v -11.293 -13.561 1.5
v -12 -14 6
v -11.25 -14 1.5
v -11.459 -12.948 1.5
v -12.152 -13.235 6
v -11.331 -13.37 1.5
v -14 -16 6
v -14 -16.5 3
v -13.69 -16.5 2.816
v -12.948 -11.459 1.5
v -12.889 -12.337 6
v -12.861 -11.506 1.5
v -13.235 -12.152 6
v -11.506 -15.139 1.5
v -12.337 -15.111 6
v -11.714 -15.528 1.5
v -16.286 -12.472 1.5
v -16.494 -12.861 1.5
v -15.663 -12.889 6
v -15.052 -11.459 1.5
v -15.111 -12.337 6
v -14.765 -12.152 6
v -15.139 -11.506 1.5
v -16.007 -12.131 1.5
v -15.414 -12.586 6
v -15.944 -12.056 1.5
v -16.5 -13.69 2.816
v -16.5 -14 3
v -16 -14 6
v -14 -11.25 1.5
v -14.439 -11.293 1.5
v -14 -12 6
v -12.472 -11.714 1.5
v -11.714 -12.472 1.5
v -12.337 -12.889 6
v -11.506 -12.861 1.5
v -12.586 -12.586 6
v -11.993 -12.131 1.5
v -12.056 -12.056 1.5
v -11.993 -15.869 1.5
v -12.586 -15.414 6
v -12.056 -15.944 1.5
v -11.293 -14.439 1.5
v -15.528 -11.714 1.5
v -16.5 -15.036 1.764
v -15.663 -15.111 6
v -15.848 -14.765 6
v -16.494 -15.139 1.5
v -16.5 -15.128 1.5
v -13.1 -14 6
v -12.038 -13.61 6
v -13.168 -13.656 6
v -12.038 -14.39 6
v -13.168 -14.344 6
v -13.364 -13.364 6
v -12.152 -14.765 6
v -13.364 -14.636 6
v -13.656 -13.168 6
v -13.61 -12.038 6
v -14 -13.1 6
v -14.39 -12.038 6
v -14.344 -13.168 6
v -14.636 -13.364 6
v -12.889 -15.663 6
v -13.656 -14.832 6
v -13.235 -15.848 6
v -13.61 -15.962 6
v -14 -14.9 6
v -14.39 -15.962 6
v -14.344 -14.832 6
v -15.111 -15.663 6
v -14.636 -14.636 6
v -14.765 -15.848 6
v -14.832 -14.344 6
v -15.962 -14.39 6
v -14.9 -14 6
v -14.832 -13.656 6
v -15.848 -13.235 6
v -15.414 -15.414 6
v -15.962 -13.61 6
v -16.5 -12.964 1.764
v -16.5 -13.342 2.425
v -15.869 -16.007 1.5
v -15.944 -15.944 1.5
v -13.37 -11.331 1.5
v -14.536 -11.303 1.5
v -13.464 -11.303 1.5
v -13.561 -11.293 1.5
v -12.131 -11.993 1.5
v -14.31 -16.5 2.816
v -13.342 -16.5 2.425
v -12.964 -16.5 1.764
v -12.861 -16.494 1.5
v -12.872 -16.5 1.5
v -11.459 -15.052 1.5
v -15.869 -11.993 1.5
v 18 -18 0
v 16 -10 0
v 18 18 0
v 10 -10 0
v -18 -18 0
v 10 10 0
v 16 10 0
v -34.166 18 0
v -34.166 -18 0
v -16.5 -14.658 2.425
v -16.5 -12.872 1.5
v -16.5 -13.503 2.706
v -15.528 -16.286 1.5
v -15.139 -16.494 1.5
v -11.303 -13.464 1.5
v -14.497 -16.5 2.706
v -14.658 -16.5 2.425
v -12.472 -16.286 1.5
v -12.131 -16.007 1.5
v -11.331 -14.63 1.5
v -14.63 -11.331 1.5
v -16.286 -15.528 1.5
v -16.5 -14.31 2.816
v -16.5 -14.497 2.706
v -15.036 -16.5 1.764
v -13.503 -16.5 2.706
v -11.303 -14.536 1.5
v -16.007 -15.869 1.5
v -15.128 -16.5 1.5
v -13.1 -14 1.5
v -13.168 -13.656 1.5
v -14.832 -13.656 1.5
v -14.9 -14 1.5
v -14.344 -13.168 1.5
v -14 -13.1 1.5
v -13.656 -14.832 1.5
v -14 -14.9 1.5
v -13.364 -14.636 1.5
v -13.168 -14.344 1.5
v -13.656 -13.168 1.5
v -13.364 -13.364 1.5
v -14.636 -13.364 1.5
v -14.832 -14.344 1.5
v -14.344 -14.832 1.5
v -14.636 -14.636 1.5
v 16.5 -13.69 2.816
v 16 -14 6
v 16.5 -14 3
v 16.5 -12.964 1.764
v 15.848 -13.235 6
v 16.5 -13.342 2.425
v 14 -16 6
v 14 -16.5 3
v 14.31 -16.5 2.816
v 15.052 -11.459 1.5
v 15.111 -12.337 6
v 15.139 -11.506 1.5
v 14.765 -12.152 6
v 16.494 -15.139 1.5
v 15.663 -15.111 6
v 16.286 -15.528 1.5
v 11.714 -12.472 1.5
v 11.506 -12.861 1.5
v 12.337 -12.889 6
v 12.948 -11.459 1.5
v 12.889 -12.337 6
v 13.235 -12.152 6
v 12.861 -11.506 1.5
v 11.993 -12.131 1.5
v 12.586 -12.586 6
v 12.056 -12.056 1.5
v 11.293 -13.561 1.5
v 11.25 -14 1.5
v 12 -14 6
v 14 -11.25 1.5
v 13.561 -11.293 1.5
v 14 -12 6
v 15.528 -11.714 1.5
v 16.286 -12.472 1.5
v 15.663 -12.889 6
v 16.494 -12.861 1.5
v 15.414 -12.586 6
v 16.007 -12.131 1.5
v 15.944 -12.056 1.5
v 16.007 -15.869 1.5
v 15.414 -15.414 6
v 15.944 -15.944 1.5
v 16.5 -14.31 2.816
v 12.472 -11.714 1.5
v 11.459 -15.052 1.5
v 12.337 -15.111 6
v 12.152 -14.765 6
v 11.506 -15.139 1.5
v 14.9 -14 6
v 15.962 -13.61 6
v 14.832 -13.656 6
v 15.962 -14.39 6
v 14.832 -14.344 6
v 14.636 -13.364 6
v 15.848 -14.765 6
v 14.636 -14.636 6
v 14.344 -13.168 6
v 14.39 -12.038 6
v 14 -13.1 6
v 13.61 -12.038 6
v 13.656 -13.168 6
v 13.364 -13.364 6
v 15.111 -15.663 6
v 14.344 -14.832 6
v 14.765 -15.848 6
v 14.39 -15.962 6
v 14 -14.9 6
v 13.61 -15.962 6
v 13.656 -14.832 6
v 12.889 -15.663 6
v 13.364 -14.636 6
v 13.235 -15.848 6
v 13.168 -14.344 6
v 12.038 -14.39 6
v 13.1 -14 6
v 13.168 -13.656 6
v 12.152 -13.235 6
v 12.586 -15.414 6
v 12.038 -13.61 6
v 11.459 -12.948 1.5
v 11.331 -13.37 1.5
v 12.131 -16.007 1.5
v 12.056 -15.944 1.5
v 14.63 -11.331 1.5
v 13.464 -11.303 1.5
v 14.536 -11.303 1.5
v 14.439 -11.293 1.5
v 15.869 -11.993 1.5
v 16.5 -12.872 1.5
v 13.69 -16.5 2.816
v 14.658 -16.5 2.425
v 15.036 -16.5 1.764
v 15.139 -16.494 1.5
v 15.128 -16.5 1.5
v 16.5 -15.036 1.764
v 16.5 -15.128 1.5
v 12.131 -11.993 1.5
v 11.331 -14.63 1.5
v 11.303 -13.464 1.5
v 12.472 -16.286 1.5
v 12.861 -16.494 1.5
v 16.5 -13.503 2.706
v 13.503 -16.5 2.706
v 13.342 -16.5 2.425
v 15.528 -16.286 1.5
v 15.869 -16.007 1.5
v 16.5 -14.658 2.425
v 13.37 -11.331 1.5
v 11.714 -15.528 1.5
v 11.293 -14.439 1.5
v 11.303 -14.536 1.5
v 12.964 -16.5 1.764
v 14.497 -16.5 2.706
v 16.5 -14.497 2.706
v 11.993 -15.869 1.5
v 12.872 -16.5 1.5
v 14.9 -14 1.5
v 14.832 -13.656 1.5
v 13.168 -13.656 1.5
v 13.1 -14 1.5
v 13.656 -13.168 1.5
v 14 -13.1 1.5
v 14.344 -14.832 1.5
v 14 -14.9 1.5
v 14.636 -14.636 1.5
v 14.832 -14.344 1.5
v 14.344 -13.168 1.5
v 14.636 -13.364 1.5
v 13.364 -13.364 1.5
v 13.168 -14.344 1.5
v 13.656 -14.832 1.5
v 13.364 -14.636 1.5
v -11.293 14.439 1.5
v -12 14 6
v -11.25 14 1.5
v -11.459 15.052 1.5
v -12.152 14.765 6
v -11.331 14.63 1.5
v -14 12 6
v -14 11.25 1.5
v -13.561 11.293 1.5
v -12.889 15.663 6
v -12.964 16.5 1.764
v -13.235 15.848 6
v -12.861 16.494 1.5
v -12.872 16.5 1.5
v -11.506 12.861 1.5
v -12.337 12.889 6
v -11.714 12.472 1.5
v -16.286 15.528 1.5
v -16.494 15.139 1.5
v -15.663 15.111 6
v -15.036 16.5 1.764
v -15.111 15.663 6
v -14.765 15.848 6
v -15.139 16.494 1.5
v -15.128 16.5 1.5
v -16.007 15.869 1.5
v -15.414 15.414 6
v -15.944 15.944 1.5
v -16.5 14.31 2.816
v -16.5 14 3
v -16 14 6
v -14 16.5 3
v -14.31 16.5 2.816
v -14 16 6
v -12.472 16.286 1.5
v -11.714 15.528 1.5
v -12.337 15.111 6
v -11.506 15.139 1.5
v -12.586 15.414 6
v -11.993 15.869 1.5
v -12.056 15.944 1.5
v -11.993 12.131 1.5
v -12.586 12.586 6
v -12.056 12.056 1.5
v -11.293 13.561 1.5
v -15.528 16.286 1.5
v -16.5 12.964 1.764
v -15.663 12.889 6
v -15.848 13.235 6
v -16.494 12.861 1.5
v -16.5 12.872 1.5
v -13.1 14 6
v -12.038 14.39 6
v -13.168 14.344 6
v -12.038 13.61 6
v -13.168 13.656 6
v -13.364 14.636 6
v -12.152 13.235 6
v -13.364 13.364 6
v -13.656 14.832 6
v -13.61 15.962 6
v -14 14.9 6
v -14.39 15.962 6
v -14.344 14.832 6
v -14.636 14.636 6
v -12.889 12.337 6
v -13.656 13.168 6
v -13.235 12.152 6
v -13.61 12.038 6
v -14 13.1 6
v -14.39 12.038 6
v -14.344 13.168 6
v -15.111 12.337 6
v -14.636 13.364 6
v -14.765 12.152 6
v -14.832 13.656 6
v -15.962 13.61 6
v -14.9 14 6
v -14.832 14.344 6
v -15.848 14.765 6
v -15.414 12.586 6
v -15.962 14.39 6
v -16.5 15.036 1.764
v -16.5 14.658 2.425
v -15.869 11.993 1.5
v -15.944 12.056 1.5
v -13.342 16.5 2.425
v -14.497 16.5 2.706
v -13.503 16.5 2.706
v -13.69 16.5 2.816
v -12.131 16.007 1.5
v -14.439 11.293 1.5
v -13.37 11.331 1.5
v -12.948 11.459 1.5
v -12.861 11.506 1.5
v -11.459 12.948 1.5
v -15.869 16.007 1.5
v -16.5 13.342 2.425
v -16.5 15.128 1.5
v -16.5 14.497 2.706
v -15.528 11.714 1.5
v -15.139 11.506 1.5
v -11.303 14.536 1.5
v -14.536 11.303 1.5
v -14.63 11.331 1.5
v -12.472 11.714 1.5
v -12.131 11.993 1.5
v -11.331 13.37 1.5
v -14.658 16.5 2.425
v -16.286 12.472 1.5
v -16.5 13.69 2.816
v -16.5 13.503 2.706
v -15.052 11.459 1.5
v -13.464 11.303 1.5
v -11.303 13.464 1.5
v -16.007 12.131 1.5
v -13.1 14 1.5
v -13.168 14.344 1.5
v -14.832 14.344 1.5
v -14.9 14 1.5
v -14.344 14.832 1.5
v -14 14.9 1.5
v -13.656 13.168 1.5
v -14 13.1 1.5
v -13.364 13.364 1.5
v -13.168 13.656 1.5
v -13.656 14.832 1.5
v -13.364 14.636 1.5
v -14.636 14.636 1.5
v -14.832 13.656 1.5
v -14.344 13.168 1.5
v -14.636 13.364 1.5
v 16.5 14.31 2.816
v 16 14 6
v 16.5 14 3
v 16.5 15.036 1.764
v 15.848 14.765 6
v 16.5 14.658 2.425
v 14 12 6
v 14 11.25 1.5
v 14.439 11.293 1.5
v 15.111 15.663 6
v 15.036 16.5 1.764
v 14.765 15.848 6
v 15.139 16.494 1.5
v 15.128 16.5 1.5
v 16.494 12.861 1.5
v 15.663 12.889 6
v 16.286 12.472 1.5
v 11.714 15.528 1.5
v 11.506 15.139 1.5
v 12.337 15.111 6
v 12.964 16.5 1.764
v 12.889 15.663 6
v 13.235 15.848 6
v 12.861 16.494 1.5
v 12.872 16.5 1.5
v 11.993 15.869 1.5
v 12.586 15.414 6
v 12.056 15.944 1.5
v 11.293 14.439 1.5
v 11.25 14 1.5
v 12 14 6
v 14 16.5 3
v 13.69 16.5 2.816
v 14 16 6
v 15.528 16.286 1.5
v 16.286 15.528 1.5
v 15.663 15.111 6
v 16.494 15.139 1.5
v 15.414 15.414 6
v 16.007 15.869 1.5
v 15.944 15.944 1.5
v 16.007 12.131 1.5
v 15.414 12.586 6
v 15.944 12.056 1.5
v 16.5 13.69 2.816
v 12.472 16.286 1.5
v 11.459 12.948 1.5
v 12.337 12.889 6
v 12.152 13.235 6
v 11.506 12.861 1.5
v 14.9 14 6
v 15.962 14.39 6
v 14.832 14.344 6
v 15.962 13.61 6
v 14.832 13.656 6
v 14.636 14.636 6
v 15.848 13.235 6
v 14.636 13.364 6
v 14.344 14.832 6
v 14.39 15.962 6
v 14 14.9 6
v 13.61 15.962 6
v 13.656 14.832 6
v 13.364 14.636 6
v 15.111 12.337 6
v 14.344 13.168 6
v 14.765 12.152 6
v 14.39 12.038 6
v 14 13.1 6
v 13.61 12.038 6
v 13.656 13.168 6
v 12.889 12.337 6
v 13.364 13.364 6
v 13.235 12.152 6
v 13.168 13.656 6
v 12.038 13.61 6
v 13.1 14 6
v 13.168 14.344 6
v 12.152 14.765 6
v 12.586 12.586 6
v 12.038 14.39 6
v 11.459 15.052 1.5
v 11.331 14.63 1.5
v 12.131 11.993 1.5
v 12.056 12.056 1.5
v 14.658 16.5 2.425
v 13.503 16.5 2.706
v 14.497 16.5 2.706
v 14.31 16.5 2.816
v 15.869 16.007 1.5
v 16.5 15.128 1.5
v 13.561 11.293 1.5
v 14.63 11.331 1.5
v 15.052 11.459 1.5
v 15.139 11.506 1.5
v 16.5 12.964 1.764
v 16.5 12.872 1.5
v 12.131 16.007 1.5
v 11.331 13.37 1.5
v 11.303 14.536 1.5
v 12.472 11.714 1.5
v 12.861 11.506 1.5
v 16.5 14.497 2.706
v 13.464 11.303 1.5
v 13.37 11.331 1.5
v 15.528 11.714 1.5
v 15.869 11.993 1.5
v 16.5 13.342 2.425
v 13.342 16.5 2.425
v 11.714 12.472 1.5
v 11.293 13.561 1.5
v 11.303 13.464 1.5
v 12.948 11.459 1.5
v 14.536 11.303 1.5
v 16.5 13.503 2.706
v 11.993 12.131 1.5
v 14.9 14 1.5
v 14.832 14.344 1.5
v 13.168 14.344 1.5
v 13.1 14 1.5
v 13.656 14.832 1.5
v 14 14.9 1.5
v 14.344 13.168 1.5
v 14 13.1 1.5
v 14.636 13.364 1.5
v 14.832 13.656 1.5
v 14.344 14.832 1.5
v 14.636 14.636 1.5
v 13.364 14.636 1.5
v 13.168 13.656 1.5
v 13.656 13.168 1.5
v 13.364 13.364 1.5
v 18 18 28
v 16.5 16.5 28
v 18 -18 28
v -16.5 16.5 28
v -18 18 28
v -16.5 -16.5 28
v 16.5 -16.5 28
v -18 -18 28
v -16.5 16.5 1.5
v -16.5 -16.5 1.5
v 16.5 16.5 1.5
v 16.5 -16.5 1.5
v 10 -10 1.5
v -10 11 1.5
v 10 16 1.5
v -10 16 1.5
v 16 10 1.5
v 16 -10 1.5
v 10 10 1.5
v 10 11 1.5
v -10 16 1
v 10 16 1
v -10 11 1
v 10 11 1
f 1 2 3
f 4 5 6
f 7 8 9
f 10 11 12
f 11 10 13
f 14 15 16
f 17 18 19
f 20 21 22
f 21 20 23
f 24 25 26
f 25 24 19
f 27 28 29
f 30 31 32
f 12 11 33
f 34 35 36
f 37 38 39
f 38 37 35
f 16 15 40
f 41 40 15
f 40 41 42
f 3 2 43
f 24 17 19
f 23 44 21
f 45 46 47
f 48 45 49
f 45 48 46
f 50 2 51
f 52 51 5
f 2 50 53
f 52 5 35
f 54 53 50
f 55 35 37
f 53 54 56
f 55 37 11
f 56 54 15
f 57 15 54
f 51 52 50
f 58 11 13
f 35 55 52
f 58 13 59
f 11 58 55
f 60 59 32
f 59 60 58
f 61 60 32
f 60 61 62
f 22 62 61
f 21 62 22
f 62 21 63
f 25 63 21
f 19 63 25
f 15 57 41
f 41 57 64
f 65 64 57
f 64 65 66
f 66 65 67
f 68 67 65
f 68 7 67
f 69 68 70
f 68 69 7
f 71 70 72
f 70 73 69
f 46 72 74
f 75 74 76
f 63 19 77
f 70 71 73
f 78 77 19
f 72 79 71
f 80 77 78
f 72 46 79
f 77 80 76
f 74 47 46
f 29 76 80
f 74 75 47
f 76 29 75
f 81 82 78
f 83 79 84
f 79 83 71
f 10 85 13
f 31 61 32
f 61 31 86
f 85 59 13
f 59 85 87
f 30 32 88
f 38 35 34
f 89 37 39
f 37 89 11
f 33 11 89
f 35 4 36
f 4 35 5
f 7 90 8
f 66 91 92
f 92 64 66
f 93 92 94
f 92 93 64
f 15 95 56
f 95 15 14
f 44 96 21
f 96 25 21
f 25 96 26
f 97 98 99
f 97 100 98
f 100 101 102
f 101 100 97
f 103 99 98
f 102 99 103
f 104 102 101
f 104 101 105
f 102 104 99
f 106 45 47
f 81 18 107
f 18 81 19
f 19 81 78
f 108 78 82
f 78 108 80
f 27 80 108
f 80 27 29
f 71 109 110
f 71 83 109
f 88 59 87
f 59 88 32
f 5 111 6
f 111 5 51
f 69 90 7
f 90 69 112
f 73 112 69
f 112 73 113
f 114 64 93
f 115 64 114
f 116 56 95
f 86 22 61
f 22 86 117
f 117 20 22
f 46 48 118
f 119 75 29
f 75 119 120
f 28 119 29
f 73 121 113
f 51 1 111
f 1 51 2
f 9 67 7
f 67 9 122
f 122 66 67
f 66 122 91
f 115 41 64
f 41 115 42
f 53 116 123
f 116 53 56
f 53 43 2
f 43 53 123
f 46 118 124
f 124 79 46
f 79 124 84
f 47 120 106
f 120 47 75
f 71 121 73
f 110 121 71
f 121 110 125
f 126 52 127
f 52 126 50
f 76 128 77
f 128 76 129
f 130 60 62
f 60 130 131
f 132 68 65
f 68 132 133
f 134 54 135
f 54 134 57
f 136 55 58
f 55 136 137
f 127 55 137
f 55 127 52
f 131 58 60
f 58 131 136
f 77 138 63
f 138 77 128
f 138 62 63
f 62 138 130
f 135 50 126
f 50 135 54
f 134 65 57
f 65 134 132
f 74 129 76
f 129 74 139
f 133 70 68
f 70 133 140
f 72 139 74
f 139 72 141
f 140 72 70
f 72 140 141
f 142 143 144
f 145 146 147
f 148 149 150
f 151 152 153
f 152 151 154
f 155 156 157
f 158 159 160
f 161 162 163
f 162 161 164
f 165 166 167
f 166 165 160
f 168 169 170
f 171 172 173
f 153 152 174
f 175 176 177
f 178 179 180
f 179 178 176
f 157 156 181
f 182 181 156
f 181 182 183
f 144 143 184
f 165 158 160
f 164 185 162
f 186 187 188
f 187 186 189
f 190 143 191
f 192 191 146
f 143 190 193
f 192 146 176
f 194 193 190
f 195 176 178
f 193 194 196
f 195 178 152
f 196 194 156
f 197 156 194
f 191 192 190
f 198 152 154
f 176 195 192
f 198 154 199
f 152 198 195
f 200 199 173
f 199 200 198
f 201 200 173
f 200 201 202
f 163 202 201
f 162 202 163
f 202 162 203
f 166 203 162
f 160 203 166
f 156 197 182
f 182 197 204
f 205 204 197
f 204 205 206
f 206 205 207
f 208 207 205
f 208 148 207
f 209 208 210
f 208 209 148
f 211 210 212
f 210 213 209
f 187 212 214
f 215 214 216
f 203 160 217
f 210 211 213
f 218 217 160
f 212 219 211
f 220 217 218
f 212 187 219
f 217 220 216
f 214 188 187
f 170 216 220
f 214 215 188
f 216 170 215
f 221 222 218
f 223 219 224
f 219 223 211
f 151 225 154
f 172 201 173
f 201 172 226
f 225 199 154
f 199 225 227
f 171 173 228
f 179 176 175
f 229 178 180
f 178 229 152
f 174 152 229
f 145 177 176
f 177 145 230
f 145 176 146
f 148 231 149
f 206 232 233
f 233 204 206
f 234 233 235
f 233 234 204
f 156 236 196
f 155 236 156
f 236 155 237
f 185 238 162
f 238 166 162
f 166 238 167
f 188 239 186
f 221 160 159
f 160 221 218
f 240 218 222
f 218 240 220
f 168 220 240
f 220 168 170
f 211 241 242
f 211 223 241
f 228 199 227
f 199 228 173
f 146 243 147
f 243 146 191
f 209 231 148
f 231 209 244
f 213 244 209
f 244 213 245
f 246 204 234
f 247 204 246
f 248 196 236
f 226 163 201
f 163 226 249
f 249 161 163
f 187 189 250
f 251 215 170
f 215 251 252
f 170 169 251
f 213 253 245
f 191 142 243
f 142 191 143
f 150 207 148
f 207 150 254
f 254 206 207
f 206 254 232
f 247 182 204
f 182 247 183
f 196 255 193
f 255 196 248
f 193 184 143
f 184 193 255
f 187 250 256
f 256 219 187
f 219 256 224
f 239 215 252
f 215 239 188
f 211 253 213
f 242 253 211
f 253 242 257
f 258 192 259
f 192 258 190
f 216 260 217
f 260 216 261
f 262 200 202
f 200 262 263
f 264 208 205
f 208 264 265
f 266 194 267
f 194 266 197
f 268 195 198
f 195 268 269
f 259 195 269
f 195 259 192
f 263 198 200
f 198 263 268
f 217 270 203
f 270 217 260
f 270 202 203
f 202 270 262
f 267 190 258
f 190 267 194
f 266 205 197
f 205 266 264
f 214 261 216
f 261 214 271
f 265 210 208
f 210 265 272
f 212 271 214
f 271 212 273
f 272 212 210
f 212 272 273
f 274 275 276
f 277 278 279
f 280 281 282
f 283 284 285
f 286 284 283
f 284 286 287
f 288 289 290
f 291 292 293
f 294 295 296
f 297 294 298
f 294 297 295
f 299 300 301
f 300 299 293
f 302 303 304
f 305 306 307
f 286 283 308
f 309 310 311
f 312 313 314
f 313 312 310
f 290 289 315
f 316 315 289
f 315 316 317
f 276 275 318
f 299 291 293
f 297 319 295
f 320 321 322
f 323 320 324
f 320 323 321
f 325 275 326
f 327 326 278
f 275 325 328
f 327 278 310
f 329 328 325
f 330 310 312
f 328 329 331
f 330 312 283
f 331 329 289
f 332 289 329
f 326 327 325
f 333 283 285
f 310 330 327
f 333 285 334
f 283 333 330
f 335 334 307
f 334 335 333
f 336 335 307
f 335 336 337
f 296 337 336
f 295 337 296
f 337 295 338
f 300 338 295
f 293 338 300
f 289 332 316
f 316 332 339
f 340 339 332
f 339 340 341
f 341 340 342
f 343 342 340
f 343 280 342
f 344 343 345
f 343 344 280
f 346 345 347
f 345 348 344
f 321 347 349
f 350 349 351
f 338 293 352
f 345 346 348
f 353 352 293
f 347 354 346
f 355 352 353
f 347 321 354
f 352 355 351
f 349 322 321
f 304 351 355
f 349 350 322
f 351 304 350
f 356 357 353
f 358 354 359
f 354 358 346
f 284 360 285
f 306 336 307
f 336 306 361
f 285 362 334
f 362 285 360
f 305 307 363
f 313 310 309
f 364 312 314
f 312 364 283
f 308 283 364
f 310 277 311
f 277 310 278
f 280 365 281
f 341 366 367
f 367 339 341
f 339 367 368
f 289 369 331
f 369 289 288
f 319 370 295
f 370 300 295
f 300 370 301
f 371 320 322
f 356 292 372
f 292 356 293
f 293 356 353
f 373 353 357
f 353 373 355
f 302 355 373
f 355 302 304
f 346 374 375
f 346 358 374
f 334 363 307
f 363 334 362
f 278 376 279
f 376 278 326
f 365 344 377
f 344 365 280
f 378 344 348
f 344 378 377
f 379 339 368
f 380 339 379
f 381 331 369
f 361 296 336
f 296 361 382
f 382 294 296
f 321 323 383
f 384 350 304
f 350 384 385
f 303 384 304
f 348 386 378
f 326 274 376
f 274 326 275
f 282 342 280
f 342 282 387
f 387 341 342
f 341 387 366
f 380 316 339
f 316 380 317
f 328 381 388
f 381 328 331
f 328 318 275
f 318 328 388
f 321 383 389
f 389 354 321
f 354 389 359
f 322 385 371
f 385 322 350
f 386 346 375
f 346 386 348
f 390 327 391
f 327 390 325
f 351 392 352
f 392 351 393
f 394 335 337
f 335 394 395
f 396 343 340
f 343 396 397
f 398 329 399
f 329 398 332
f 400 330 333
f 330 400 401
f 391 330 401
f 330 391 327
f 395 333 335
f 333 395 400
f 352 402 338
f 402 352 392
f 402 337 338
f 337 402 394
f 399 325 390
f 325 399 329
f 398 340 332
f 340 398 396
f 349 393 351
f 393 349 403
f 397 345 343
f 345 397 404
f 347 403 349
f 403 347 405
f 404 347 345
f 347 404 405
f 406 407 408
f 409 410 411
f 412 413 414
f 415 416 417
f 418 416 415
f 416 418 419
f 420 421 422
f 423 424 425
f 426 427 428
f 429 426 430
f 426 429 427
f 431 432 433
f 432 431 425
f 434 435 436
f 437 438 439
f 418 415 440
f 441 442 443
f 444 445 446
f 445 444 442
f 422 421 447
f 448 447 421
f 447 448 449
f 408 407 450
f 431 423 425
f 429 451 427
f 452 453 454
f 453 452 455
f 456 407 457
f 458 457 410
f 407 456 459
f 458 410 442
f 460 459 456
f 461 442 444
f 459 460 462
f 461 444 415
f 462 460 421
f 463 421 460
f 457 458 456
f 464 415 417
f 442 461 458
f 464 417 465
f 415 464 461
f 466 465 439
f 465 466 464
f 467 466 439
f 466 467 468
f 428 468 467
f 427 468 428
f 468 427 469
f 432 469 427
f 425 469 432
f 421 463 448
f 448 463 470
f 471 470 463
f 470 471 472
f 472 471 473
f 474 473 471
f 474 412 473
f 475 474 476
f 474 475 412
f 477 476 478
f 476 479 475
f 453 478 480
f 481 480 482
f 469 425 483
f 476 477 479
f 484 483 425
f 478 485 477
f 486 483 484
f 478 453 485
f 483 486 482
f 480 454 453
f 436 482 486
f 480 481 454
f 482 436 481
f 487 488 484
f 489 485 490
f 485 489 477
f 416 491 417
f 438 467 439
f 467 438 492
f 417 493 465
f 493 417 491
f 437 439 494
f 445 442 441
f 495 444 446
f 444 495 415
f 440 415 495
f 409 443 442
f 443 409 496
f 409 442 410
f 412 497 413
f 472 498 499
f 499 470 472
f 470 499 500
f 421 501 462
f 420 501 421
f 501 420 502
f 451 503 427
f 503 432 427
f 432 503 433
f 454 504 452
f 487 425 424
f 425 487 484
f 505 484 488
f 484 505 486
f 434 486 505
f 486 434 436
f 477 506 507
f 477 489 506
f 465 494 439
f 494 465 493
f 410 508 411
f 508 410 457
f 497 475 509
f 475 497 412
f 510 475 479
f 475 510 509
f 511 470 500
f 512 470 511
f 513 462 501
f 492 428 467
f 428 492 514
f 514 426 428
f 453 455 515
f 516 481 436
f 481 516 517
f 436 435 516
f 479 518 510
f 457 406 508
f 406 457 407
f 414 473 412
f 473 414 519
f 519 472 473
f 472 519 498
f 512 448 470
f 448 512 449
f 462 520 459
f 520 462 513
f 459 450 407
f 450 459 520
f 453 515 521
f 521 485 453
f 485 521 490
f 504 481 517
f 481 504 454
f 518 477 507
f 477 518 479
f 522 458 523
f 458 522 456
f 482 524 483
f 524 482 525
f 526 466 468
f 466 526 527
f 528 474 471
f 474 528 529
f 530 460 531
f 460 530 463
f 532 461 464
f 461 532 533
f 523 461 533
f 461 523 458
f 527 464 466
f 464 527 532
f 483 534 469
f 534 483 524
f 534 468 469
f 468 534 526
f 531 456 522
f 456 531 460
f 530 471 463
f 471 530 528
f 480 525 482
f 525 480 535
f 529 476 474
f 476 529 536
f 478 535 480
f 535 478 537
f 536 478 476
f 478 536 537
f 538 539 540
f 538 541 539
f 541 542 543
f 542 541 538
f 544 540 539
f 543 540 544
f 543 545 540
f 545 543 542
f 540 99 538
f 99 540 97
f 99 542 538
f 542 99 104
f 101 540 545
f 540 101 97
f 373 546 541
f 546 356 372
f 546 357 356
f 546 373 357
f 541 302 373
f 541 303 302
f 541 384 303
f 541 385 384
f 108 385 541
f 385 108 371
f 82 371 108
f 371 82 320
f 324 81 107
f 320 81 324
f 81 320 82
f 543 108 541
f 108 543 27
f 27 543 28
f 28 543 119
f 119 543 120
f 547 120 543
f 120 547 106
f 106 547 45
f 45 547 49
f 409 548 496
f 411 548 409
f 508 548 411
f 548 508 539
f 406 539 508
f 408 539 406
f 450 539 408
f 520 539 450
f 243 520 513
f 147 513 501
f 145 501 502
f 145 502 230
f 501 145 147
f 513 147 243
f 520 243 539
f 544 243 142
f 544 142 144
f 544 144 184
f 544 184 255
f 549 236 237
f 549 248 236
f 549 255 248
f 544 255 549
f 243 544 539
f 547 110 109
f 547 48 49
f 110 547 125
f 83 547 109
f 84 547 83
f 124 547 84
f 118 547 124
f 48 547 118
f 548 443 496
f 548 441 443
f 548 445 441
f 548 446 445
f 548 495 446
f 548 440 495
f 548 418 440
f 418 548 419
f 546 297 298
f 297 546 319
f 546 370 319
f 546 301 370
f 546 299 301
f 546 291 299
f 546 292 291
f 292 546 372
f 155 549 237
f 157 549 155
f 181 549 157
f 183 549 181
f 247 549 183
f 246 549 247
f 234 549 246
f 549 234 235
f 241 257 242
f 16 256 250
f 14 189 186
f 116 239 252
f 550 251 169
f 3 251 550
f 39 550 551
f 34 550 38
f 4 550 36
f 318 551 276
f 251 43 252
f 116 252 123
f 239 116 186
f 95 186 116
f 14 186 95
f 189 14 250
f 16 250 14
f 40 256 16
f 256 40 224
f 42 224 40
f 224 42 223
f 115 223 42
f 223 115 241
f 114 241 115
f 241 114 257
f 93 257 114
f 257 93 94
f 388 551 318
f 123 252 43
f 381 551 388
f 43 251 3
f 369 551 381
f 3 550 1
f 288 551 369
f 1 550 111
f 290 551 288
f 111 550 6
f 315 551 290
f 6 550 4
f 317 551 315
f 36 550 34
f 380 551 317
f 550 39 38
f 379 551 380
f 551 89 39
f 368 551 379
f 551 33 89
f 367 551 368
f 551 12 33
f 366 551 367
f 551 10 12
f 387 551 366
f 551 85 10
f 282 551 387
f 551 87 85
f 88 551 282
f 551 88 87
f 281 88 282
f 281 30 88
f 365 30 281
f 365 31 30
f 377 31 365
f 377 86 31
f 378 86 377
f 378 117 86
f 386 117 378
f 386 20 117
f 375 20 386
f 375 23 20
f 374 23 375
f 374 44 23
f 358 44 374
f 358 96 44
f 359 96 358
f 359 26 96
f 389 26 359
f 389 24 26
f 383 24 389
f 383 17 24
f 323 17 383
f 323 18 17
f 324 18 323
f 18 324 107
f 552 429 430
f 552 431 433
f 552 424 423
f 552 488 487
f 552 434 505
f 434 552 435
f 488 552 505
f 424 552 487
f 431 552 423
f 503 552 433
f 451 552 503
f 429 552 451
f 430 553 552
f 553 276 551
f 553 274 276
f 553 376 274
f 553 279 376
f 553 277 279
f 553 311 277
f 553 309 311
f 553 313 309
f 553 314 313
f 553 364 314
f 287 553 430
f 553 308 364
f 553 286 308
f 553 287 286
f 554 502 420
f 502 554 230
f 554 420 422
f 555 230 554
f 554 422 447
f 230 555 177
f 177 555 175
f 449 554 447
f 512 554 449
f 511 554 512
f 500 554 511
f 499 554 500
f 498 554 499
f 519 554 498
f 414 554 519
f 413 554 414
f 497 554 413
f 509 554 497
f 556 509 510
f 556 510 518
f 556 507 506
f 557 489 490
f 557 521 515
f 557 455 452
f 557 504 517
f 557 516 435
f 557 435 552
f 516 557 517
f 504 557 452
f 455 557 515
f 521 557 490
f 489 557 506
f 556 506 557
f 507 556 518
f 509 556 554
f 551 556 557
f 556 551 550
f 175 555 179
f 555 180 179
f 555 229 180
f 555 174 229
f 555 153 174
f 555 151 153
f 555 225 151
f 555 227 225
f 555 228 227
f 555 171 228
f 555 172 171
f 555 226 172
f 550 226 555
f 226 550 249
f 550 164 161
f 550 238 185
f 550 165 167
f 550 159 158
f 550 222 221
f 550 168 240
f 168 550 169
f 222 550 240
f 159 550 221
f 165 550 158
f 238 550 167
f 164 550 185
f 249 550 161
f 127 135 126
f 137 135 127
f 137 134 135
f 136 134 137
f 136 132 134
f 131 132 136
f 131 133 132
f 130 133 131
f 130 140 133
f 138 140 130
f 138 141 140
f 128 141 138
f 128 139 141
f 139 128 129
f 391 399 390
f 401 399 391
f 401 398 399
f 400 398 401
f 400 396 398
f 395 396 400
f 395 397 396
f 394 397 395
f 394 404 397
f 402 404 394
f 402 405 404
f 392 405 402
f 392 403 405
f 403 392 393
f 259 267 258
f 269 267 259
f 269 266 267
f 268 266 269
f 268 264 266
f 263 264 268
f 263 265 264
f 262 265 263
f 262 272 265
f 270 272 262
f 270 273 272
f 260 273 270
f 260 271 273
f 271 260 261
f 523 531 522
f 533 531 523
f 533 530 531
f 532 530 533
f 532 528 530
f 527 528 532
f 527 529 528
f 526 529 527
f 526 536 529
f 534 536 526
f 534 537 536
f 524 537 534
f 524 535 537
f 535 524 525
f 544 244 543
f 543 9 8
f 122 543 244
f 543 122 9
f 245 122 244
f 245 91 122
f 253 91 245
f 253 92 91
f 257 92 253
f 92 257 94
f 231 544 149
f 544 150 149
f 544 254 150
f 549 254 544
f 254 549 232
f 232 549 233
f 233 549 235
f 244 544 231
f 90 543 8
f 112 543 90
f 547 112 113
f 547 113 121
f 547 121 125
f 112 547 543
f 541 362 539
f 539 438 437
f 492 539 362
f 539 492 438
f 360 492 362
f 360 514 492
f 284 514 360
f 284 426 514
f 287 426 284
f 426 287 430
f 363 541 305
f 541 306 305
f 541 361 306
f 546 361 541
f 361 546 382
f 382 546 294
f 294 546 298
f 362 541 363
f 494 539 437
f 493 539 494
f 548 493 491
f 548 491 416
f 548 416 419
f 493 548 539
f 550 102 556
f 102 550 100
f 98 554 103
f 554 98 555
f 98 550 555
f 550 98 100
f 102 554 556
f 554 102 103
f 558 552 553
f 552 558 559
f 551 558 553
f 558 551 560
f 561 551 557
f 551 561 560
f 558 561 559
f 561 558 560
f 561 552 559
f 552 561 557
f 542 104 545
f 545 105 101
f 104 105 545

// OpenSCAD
board_d = 32;
hole_d = 28;
h = 28;

difference() {
    cube_center([board_d+4, board_d+4,h]);
    translate([0,0,1.5])
    cube_center([board_d+1, board_d+1,h]);
    
    translate([board_d/2 - 6/2,0,0])
    cube_center([6,20,15]);
    
    rotate([0,0,90])
    translate([board_d/2 - 5/2,0,1])
    cube_center([5,20,15]);
}

translate([-hole_d/2,-hole_d/2,0])
standoff();
translate([hole_d/2,-hole_d/2,0])
standoff();
translate([-hole_d/2,hole_d/2,0])
standoff();
translate([hole_d/2,hole_d/2,0])
standoff();

module cube_center(dims) {
    translate([-dims[0]/2, -dims[1]/2, 0])
    cube(dims);
}

translate([-board_d/2-2,0,0])
scale([h,board_d+4,h])
scale([1/sqrt(3),1,1])
triangle();

module triangle() {
scale([1,1,1])
rotate([0,-90,90])
linear_extrude(height = 1, center = true, convexity = 10, twist = 0)
polygon(points=[[0,0],[1,0],[0,1]]);
}

module standoff() {
    difference() {
    cylinder(d1=6,d2=4,h=6,$fn=32);
    cylinder(d=1.8,h=10,$fn=16);
    }
}
